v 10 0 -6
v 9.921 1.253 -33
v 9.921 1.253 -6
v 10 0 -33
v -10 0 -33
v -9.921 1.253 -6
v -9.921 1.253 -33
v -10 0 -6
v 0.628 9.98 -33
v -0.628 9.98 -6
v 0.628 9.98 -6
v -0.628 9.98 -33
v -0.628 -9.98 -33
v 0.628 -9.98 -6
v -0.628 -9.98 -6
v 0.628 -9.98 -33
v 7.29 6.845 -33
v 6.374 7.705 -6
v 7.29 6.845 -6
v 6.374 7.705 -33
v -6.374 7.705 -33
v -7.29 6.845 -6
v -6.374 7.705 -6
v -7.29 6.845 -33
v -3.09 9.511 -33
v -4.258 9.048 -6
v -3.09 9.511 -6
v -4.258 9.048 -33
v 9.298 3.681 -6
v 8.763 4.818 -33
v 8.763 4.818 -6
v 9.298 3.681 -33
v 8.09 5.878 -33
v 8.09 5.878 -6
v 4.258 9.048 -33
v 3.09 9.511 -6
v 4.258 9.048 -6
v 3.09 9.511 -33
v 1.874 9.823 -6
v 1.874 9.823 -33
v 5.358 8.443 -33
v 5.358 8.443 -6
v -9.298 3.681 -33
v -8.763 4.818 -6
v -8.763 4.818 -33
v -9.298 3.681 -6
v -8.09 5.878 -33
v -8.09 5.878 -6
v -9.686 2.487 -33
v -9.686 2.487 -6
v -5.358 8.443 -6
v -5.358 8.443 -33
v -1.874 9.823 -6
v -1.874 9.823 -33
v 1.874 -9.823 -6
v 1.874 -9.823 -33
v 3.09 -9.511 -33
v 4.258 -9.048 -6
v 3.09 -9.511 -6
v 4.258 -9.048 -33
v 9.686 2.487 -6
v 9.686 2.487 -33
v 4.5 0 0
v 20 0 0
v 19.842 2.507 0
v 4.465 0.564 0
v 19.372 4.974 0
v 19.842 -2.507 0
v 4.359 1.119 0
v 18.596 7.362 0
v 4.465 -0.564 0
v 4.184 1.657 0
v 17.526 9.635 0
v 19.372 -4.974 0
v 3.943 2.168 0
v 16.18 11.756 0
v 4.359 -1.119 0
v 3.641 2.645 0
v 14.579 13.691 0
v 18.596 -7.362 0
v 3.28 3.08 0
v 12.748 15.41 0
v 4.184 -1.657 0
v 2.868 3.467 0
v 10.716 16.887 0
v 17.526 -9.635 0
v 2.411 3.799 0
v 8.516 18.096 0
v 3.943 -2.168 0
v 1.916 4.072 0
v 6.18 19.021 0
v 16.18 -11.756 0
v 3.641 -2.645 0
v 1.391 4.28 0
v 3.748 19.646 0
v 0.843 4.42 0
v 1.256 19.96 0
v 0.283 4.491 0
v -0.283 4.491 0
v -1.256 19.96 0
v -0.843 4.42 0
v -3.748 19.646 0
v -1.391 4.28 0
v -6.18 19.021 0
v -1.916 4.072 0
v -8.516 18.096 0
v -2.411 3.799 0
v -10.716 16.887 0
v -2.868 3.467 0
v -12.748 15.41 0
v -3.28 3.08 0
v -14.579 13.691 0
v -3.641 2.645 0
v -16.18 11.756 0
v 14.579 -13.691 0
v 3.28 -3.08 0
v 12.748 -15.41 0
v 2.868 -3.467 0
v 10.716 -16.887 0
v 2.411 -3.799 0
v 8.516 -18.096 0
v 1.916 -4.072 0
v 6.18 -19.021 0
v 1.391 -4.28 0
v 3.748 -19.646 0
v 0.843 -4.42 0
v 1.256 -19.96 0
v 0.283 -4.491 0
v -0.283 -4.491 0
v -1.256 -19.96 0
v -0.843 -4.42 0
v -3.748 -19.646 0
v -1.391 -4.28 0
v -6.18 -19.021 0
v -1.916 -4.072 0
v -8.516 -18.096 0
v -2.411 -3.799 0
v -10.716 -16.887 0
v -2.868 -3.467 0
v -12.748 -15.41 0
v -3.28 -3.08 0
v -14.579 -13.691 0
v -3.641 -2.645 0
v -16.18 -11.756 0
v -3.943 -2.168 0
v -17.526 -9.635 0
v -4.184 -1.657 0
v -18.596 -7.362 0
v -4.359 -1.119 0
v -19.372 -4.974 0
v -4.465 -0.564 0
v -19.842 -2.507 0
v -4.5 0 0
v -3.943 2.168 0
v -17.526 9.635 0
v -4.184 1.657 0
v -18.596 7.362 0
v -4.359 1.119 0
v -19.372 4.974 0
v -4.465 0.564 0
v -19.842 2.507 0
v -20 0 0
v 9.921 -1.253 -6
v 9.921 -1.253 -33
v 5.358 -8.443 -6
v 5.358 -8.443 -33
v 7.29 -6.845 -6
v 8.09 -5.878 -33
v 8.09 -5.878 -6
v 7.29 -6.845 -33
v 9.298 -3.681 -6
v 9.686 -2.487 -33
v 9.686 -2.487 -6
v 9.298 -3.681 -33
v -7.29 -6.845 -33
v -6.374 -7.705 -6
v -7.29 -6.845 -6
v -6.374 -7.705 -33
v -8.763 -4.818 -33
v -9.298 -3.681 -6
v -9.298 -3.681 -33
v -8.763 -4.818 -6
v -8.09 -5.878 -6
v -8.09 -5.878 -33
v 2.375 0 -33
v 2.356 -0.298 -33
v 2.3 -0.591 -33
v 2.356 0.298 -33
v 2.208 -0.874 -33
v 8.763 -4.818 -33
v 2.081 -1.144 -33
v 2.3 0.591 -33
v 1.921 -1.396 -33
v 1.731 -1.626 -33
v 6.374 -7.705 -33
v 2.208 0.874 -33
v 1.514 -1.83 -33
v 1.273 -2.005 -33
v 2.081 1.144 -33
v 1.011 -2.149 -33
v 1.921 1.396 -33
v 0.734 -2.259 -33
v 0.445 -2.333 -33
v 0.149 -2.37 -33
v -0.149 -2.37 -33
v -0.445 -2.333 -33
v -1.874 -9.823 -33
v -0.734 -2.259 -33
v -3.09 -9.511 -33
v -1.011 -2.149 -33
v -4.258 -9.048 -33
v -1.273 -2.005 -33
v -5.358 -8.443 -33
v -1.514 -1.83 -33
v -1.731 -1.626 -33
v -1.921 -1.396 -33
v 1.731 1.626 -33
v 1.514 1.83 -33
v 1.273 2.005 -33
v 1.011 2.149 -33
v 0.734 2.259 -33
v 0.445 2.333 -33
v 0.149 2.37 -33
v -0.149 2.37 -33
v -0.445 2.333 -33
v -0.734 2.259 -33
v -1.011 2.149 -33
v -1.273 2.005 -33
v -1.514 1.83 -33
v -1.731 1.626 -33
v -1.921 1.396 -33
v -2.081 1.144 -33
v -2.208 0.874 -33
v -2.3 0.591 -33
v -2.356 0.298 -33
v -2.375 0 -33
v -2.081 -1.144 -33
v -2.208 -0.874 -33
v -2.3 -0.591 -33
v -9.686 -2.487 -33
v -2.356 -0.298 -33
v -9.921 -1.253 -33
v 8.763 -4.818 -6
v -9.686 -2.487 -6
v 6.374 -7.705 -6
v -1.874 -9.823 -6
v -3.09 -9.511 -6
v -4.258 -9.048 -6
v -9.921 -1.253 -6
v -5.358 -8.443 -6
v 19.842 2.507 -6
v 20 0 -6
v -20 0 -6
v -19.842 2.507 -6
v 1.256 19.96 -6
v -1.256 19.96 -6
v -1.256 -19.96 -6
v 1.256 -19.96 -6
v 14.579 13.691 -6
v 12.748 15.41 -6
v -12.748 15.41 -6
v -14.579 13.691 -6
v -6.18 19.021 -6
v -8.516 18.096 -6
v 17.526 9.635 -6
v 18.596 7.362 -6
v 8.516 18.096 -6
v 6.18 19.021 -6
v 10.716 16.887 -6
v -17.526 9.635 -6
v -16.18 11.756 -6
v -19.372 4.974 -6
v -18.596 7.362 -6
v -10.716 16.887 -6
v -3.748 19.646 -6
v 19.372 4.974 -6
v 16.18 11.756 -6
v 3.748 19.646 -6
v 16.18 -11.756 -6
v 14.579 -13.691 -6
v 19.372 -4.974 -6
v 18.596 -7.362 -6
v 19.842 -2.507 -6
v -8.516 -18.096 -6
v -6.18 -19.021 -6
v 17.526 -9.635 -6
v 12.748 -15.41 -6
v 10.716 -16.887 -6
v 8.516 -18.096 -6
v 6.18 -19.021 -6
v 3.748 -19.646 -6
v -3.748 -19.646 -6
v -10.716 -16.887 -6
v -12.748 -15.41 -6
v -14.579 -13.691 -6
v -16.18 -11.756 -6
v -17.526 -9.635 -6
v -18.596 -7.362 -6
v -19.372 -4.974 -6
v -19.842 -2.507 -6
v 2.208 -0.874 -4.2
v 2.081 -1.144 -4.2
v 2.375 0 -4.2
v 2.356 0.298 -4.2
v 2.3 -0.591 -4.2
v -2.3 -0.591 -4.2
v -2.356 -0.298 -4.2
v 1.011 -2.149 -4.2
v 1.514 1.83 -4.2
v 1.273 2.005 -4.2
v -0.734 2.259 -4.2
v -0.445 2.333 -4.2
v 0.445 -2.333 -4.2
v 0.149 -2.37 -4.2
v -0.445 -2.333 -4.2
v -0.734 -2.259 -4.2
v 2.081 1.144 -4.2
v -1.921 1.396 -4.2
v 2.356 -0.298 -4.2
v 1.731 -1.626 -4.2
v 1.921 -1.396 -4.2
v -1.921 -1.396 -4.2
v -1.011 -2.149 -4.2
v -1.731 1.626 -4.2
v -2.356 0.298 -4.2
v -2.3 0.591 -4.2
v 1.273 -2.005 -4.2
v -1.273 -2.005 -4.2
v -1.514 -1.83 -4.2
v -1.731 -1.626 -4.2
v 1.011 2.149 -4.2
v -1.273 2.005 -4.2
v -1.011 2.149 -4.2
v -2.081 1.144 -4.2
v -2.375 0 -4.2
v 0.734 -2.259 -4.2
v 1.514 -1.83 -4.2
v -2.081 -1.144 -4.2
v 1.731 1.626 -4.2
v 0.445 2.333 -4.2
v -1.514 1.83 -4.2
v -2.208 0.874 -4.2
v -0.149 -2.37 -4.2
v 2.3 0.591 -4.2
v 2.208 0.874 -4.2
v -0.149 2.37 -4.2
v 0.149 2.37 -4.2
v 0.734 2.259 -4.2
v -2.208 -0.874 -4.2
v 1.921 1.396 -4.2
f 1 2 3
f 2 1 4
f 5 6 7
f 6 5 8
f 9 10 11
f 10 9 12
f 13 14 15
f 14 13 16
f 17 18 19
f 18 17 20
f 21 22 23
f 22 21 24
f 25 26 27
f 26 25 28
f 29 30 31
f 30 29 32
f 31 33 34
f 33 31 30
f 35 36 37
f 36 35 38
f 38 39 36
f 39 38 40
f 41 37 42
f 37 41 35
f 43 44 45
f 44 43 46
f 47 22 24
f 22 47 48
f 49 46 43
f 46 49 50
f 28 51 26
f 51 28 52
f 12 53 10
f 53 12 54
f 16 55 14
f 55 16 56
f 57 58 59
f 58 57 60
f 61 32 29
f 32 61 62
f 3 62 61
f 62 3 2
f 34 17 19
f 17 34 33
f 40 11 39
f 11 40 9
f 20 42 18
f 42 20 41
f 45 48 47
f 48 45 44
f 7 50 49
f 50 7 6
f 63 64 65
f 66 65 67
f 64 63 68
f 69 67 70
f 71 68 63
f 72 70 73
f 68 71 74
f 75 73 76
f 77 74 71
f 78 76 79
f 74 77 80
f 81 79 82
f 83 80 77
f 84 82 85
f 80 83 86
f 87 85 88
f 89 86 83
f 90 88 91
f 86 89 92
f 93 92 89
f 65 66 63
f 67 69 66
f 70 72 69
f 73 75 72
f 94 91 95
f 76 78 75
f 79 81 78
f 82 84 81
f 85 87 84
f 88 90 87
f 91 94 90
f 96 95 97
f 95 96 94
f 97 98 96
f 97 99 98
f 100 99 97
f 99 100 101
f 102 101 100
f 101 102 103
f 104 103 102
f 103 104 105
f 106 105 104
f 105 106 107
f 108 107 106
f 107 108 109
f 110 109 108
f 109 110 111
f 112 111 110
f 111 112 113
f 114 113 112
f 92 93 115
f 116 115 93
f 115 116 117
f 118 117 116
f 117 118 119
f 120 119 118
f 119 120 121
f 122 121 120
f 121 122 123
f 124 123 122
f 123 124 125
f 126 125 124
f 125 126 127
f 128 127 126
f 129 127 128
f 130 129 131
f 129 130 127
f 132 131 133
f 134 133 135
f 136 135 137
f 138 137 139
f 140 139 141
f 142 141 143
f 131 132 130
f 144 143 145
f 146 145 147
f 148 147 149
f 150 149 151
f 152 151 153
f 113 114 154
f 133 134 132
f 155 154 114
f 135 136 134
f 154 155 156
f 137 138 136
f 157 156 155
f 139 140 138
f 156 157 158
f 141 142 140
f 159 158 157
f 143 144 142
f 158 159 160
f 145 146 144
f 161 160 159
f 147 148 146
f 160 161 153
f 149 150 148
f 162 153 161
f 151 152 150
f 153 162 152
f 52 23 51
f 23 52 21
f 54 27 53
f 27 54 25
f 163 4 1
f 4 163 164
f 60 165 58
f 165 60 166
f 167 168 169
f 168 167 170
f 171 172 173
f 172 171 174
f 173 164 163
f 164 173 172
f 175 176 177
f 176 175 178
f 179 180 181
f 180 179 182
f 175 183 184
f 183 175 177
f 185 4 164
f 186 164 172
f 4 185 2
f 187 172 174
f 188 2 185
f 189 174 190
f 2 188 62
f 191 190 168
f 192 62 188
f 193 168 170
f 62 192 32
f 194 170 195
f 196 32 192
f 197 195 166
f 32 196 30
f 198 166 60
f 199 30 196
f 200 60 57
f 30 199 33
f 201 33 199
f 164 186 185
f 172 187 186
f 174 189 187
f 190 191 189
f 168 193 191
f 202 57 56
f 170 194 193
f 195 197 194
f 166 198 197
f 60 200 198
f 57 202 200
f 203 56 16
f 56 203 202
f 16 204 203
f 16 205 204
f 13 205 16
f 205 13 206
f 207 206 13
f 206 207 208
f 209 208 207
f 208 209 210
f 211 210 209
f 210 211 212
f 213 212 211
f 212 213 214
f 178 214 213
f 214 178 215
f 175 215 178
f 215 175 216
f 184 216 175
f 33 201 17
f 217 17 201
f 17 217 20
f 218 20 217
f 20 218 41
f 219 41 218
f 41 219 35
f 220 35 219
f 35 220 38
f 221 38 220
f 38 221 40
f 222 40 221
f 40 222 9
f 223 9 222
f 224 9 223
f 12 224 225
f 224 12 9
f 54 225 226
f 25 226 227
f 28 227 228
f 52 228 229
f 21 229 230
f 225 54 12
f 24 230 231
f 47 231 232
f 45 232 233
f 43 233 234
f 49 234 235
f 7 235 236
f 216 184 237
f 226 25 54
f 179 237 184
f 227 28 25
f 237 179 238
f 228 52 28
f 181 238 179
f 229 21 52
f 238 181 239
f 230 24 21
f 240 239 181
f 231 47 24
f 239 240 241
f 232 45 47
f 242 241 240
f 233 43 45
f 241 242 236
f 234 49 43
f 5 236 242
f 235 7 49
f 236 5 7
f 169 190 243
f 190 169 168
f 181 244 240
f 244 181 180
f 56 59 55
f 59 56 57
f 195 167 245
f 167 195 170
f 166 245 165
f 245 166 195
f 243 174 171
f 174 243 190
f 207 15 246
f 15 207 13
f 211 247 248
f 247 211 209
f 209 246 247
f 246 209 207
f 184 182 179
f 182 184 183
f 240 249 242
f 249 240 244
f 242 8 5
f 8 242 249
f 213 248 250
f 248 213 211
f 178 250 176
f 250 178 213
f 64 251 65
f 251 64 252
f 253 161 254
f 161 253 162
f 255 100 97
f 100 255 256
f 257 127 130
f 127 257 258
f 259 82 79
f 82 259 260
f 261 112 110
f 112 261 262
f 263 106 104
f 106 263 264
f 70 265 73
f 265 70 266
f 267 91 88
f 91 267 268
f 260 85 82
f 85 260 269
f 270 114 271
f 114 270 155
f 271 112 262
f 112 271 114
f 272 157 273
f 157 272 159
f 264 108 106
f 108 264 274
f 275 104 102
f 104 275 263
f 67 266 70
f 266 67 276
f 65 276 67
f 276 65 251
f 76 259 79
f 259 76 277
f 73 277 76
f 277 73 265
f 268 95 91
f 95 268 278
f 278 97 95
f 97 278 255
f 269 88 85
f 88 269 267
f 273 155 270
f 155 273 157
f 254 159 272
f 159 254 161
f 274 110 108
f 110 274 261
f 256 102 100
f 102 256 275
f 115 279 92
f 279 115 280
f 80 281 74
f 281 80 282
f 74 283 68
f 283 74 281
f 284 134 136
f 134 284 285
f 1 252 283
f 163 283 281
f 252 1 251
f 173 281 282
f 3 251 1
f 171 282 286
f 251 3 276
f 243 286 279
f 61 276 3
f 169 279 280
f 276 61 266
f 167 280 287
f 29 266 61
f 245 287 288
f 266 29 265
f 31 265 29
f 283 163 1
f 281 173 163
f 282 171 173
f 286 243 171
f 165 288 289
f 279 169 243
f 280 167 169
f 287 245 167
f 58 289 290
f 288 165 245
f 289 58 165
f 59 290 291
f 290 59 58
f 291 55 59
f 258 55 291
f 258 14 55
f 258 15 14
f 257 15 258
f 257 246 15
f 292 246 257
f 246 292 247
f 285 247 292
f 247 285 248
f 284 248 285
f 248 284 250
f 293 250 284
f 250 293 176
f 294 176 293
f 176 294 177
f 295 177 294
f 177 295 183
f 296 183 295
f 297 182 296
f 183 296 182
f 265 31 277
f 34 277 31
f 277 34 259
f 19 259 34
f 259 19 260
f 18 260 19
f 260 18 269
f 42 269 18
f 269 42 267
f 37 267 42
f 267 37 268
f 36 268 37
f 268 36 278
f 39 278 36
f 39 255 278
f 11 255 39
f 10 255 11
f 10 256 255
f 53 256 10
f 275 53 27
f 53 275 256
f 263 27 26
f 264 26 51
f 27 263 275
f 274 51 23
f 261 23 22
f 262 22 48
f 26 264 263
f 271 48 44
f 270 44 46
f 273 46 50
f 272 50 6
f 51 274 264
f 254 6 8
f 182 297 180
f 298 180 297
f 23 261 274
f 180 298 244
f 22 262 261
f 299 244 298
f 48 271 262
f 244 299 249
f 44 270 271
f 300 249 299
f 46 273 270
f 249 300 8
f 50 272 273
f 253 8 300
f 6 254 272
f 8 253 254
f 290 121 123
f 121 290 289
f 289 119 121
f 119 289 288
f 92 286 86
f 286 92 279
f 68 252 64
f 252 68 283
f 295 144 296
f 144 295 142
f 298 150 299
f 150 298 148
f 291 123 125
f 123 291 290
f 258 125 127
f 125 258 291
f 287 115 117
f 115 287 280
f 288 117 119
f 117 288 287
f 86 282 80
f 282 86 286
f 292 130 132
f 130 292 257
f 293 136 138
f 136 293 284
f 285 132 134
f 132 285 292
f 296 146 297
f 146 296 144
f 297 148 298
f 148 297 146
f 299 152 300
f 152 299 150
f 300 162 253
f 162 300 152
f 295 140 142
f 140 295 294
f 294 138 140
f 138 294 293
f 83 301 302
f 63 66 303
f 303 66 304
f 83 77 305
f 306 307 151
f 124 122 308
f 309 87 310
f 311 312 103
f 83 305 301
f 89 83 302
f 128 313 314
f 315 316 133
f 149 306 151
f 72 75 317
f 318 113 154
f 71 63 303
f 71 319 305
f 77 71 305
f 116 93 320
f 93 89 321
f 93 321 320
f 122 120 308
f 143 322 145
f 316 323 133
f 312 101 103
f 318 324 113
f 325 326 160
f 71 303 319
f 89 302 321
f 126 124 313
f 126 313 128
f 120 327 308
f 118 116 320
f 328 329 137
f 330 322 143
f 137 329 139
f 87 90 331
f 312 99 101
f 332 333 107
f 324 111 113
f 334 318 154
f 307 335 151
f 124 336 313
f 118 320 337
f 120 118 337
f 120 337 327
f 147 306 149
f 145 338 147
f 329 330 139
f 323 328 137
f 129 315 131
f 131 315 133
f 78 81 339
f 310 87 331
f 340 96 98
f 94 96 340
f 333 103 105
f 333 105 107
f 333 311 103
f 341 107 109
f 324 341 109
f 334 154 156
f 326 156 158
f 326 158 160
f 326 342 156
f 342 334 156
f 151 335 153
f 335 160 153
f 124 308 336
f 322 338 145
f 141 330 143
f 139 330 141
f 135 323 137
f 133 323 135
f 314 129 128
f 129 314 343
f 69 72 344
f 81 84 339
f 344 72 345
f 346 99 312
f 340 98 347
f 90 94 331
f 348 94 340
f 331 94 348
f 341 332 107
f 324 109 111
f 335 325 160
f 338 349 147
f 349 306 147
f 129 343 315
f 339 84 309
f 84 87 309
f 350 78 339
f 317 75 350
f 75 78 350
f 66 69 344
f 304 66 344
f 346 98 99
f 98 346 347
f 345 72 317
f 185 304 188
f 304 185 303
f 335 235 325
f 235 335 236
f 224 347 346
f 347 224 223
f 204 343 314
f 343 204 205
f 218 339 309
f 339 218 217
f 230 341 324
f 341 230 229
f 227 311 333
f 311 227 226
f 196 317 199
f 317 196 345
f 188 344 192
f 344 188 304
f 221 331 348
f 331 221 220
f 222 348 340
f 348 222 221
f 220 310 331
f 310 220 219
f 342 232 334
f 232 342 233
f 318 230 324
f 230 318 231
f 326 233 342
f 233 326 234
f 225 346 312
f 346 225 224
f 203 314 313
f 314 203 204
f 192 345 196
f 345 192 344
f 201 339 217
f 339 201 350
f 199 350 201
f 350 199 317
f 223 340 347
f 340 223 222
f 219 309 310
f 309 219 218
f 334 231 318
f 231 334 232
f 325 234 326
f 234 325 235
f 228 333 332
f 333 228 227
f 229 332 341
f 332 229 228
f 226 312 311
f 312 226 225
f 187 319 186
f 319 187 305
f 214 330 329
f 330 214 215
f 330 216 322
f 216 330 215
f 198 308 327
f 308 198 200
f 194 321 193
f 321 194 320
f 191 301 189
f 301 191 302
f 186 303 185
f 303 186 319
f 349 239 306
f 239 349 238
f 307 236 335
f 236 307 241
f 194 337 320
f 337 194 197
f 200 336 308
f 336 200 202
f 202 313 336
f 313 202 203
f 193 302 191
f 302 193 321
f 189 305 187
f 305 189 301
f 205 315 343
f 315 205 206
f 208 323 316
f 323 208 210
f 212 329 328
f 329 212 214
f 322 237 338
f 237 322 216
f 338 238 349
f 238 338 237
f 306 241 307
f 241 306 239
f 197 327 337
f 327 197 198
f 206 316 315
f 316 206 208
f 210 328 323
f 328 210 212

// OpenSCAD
$fn = 50;


difference() {
	union() {
		translate(v = [0, 0, -33.0000000000]) {
			cylinder(h = 33, r = 10.0000000000);
		}
		translate(v = [0, 0, -6.0000000000]) {
			cylinder(h = 6, r = 20.0000000000);
		}
	}
	union() {
		translate(v = [0, 0, 0]) {
			rotate(a = [0, 0, 0]) {
				difference() {
					union() {
						#translate(v = [0, 0, -33.0000000000]) {
							cylinder(h = 33, r = 2.2500000000);
						}
						#translate(v = [0, 0, -4.2000000000]) {
							cylinder(h = 4.2000000000, r = 10.0000000000, r1 = 2.3750000000, r2 = 4.5000000000);
						}
						#translate(v = [0, 0, -33.0000000000]) {
							cylinder(h = 33, r = 2.3750000000);
						}
						#translate(v = [0, 0, -33.0000000000]) {
							cylinder(h = 33, r = 2.2500000000);
						}
					}
					union();
				}
			}
		}
	}
}
